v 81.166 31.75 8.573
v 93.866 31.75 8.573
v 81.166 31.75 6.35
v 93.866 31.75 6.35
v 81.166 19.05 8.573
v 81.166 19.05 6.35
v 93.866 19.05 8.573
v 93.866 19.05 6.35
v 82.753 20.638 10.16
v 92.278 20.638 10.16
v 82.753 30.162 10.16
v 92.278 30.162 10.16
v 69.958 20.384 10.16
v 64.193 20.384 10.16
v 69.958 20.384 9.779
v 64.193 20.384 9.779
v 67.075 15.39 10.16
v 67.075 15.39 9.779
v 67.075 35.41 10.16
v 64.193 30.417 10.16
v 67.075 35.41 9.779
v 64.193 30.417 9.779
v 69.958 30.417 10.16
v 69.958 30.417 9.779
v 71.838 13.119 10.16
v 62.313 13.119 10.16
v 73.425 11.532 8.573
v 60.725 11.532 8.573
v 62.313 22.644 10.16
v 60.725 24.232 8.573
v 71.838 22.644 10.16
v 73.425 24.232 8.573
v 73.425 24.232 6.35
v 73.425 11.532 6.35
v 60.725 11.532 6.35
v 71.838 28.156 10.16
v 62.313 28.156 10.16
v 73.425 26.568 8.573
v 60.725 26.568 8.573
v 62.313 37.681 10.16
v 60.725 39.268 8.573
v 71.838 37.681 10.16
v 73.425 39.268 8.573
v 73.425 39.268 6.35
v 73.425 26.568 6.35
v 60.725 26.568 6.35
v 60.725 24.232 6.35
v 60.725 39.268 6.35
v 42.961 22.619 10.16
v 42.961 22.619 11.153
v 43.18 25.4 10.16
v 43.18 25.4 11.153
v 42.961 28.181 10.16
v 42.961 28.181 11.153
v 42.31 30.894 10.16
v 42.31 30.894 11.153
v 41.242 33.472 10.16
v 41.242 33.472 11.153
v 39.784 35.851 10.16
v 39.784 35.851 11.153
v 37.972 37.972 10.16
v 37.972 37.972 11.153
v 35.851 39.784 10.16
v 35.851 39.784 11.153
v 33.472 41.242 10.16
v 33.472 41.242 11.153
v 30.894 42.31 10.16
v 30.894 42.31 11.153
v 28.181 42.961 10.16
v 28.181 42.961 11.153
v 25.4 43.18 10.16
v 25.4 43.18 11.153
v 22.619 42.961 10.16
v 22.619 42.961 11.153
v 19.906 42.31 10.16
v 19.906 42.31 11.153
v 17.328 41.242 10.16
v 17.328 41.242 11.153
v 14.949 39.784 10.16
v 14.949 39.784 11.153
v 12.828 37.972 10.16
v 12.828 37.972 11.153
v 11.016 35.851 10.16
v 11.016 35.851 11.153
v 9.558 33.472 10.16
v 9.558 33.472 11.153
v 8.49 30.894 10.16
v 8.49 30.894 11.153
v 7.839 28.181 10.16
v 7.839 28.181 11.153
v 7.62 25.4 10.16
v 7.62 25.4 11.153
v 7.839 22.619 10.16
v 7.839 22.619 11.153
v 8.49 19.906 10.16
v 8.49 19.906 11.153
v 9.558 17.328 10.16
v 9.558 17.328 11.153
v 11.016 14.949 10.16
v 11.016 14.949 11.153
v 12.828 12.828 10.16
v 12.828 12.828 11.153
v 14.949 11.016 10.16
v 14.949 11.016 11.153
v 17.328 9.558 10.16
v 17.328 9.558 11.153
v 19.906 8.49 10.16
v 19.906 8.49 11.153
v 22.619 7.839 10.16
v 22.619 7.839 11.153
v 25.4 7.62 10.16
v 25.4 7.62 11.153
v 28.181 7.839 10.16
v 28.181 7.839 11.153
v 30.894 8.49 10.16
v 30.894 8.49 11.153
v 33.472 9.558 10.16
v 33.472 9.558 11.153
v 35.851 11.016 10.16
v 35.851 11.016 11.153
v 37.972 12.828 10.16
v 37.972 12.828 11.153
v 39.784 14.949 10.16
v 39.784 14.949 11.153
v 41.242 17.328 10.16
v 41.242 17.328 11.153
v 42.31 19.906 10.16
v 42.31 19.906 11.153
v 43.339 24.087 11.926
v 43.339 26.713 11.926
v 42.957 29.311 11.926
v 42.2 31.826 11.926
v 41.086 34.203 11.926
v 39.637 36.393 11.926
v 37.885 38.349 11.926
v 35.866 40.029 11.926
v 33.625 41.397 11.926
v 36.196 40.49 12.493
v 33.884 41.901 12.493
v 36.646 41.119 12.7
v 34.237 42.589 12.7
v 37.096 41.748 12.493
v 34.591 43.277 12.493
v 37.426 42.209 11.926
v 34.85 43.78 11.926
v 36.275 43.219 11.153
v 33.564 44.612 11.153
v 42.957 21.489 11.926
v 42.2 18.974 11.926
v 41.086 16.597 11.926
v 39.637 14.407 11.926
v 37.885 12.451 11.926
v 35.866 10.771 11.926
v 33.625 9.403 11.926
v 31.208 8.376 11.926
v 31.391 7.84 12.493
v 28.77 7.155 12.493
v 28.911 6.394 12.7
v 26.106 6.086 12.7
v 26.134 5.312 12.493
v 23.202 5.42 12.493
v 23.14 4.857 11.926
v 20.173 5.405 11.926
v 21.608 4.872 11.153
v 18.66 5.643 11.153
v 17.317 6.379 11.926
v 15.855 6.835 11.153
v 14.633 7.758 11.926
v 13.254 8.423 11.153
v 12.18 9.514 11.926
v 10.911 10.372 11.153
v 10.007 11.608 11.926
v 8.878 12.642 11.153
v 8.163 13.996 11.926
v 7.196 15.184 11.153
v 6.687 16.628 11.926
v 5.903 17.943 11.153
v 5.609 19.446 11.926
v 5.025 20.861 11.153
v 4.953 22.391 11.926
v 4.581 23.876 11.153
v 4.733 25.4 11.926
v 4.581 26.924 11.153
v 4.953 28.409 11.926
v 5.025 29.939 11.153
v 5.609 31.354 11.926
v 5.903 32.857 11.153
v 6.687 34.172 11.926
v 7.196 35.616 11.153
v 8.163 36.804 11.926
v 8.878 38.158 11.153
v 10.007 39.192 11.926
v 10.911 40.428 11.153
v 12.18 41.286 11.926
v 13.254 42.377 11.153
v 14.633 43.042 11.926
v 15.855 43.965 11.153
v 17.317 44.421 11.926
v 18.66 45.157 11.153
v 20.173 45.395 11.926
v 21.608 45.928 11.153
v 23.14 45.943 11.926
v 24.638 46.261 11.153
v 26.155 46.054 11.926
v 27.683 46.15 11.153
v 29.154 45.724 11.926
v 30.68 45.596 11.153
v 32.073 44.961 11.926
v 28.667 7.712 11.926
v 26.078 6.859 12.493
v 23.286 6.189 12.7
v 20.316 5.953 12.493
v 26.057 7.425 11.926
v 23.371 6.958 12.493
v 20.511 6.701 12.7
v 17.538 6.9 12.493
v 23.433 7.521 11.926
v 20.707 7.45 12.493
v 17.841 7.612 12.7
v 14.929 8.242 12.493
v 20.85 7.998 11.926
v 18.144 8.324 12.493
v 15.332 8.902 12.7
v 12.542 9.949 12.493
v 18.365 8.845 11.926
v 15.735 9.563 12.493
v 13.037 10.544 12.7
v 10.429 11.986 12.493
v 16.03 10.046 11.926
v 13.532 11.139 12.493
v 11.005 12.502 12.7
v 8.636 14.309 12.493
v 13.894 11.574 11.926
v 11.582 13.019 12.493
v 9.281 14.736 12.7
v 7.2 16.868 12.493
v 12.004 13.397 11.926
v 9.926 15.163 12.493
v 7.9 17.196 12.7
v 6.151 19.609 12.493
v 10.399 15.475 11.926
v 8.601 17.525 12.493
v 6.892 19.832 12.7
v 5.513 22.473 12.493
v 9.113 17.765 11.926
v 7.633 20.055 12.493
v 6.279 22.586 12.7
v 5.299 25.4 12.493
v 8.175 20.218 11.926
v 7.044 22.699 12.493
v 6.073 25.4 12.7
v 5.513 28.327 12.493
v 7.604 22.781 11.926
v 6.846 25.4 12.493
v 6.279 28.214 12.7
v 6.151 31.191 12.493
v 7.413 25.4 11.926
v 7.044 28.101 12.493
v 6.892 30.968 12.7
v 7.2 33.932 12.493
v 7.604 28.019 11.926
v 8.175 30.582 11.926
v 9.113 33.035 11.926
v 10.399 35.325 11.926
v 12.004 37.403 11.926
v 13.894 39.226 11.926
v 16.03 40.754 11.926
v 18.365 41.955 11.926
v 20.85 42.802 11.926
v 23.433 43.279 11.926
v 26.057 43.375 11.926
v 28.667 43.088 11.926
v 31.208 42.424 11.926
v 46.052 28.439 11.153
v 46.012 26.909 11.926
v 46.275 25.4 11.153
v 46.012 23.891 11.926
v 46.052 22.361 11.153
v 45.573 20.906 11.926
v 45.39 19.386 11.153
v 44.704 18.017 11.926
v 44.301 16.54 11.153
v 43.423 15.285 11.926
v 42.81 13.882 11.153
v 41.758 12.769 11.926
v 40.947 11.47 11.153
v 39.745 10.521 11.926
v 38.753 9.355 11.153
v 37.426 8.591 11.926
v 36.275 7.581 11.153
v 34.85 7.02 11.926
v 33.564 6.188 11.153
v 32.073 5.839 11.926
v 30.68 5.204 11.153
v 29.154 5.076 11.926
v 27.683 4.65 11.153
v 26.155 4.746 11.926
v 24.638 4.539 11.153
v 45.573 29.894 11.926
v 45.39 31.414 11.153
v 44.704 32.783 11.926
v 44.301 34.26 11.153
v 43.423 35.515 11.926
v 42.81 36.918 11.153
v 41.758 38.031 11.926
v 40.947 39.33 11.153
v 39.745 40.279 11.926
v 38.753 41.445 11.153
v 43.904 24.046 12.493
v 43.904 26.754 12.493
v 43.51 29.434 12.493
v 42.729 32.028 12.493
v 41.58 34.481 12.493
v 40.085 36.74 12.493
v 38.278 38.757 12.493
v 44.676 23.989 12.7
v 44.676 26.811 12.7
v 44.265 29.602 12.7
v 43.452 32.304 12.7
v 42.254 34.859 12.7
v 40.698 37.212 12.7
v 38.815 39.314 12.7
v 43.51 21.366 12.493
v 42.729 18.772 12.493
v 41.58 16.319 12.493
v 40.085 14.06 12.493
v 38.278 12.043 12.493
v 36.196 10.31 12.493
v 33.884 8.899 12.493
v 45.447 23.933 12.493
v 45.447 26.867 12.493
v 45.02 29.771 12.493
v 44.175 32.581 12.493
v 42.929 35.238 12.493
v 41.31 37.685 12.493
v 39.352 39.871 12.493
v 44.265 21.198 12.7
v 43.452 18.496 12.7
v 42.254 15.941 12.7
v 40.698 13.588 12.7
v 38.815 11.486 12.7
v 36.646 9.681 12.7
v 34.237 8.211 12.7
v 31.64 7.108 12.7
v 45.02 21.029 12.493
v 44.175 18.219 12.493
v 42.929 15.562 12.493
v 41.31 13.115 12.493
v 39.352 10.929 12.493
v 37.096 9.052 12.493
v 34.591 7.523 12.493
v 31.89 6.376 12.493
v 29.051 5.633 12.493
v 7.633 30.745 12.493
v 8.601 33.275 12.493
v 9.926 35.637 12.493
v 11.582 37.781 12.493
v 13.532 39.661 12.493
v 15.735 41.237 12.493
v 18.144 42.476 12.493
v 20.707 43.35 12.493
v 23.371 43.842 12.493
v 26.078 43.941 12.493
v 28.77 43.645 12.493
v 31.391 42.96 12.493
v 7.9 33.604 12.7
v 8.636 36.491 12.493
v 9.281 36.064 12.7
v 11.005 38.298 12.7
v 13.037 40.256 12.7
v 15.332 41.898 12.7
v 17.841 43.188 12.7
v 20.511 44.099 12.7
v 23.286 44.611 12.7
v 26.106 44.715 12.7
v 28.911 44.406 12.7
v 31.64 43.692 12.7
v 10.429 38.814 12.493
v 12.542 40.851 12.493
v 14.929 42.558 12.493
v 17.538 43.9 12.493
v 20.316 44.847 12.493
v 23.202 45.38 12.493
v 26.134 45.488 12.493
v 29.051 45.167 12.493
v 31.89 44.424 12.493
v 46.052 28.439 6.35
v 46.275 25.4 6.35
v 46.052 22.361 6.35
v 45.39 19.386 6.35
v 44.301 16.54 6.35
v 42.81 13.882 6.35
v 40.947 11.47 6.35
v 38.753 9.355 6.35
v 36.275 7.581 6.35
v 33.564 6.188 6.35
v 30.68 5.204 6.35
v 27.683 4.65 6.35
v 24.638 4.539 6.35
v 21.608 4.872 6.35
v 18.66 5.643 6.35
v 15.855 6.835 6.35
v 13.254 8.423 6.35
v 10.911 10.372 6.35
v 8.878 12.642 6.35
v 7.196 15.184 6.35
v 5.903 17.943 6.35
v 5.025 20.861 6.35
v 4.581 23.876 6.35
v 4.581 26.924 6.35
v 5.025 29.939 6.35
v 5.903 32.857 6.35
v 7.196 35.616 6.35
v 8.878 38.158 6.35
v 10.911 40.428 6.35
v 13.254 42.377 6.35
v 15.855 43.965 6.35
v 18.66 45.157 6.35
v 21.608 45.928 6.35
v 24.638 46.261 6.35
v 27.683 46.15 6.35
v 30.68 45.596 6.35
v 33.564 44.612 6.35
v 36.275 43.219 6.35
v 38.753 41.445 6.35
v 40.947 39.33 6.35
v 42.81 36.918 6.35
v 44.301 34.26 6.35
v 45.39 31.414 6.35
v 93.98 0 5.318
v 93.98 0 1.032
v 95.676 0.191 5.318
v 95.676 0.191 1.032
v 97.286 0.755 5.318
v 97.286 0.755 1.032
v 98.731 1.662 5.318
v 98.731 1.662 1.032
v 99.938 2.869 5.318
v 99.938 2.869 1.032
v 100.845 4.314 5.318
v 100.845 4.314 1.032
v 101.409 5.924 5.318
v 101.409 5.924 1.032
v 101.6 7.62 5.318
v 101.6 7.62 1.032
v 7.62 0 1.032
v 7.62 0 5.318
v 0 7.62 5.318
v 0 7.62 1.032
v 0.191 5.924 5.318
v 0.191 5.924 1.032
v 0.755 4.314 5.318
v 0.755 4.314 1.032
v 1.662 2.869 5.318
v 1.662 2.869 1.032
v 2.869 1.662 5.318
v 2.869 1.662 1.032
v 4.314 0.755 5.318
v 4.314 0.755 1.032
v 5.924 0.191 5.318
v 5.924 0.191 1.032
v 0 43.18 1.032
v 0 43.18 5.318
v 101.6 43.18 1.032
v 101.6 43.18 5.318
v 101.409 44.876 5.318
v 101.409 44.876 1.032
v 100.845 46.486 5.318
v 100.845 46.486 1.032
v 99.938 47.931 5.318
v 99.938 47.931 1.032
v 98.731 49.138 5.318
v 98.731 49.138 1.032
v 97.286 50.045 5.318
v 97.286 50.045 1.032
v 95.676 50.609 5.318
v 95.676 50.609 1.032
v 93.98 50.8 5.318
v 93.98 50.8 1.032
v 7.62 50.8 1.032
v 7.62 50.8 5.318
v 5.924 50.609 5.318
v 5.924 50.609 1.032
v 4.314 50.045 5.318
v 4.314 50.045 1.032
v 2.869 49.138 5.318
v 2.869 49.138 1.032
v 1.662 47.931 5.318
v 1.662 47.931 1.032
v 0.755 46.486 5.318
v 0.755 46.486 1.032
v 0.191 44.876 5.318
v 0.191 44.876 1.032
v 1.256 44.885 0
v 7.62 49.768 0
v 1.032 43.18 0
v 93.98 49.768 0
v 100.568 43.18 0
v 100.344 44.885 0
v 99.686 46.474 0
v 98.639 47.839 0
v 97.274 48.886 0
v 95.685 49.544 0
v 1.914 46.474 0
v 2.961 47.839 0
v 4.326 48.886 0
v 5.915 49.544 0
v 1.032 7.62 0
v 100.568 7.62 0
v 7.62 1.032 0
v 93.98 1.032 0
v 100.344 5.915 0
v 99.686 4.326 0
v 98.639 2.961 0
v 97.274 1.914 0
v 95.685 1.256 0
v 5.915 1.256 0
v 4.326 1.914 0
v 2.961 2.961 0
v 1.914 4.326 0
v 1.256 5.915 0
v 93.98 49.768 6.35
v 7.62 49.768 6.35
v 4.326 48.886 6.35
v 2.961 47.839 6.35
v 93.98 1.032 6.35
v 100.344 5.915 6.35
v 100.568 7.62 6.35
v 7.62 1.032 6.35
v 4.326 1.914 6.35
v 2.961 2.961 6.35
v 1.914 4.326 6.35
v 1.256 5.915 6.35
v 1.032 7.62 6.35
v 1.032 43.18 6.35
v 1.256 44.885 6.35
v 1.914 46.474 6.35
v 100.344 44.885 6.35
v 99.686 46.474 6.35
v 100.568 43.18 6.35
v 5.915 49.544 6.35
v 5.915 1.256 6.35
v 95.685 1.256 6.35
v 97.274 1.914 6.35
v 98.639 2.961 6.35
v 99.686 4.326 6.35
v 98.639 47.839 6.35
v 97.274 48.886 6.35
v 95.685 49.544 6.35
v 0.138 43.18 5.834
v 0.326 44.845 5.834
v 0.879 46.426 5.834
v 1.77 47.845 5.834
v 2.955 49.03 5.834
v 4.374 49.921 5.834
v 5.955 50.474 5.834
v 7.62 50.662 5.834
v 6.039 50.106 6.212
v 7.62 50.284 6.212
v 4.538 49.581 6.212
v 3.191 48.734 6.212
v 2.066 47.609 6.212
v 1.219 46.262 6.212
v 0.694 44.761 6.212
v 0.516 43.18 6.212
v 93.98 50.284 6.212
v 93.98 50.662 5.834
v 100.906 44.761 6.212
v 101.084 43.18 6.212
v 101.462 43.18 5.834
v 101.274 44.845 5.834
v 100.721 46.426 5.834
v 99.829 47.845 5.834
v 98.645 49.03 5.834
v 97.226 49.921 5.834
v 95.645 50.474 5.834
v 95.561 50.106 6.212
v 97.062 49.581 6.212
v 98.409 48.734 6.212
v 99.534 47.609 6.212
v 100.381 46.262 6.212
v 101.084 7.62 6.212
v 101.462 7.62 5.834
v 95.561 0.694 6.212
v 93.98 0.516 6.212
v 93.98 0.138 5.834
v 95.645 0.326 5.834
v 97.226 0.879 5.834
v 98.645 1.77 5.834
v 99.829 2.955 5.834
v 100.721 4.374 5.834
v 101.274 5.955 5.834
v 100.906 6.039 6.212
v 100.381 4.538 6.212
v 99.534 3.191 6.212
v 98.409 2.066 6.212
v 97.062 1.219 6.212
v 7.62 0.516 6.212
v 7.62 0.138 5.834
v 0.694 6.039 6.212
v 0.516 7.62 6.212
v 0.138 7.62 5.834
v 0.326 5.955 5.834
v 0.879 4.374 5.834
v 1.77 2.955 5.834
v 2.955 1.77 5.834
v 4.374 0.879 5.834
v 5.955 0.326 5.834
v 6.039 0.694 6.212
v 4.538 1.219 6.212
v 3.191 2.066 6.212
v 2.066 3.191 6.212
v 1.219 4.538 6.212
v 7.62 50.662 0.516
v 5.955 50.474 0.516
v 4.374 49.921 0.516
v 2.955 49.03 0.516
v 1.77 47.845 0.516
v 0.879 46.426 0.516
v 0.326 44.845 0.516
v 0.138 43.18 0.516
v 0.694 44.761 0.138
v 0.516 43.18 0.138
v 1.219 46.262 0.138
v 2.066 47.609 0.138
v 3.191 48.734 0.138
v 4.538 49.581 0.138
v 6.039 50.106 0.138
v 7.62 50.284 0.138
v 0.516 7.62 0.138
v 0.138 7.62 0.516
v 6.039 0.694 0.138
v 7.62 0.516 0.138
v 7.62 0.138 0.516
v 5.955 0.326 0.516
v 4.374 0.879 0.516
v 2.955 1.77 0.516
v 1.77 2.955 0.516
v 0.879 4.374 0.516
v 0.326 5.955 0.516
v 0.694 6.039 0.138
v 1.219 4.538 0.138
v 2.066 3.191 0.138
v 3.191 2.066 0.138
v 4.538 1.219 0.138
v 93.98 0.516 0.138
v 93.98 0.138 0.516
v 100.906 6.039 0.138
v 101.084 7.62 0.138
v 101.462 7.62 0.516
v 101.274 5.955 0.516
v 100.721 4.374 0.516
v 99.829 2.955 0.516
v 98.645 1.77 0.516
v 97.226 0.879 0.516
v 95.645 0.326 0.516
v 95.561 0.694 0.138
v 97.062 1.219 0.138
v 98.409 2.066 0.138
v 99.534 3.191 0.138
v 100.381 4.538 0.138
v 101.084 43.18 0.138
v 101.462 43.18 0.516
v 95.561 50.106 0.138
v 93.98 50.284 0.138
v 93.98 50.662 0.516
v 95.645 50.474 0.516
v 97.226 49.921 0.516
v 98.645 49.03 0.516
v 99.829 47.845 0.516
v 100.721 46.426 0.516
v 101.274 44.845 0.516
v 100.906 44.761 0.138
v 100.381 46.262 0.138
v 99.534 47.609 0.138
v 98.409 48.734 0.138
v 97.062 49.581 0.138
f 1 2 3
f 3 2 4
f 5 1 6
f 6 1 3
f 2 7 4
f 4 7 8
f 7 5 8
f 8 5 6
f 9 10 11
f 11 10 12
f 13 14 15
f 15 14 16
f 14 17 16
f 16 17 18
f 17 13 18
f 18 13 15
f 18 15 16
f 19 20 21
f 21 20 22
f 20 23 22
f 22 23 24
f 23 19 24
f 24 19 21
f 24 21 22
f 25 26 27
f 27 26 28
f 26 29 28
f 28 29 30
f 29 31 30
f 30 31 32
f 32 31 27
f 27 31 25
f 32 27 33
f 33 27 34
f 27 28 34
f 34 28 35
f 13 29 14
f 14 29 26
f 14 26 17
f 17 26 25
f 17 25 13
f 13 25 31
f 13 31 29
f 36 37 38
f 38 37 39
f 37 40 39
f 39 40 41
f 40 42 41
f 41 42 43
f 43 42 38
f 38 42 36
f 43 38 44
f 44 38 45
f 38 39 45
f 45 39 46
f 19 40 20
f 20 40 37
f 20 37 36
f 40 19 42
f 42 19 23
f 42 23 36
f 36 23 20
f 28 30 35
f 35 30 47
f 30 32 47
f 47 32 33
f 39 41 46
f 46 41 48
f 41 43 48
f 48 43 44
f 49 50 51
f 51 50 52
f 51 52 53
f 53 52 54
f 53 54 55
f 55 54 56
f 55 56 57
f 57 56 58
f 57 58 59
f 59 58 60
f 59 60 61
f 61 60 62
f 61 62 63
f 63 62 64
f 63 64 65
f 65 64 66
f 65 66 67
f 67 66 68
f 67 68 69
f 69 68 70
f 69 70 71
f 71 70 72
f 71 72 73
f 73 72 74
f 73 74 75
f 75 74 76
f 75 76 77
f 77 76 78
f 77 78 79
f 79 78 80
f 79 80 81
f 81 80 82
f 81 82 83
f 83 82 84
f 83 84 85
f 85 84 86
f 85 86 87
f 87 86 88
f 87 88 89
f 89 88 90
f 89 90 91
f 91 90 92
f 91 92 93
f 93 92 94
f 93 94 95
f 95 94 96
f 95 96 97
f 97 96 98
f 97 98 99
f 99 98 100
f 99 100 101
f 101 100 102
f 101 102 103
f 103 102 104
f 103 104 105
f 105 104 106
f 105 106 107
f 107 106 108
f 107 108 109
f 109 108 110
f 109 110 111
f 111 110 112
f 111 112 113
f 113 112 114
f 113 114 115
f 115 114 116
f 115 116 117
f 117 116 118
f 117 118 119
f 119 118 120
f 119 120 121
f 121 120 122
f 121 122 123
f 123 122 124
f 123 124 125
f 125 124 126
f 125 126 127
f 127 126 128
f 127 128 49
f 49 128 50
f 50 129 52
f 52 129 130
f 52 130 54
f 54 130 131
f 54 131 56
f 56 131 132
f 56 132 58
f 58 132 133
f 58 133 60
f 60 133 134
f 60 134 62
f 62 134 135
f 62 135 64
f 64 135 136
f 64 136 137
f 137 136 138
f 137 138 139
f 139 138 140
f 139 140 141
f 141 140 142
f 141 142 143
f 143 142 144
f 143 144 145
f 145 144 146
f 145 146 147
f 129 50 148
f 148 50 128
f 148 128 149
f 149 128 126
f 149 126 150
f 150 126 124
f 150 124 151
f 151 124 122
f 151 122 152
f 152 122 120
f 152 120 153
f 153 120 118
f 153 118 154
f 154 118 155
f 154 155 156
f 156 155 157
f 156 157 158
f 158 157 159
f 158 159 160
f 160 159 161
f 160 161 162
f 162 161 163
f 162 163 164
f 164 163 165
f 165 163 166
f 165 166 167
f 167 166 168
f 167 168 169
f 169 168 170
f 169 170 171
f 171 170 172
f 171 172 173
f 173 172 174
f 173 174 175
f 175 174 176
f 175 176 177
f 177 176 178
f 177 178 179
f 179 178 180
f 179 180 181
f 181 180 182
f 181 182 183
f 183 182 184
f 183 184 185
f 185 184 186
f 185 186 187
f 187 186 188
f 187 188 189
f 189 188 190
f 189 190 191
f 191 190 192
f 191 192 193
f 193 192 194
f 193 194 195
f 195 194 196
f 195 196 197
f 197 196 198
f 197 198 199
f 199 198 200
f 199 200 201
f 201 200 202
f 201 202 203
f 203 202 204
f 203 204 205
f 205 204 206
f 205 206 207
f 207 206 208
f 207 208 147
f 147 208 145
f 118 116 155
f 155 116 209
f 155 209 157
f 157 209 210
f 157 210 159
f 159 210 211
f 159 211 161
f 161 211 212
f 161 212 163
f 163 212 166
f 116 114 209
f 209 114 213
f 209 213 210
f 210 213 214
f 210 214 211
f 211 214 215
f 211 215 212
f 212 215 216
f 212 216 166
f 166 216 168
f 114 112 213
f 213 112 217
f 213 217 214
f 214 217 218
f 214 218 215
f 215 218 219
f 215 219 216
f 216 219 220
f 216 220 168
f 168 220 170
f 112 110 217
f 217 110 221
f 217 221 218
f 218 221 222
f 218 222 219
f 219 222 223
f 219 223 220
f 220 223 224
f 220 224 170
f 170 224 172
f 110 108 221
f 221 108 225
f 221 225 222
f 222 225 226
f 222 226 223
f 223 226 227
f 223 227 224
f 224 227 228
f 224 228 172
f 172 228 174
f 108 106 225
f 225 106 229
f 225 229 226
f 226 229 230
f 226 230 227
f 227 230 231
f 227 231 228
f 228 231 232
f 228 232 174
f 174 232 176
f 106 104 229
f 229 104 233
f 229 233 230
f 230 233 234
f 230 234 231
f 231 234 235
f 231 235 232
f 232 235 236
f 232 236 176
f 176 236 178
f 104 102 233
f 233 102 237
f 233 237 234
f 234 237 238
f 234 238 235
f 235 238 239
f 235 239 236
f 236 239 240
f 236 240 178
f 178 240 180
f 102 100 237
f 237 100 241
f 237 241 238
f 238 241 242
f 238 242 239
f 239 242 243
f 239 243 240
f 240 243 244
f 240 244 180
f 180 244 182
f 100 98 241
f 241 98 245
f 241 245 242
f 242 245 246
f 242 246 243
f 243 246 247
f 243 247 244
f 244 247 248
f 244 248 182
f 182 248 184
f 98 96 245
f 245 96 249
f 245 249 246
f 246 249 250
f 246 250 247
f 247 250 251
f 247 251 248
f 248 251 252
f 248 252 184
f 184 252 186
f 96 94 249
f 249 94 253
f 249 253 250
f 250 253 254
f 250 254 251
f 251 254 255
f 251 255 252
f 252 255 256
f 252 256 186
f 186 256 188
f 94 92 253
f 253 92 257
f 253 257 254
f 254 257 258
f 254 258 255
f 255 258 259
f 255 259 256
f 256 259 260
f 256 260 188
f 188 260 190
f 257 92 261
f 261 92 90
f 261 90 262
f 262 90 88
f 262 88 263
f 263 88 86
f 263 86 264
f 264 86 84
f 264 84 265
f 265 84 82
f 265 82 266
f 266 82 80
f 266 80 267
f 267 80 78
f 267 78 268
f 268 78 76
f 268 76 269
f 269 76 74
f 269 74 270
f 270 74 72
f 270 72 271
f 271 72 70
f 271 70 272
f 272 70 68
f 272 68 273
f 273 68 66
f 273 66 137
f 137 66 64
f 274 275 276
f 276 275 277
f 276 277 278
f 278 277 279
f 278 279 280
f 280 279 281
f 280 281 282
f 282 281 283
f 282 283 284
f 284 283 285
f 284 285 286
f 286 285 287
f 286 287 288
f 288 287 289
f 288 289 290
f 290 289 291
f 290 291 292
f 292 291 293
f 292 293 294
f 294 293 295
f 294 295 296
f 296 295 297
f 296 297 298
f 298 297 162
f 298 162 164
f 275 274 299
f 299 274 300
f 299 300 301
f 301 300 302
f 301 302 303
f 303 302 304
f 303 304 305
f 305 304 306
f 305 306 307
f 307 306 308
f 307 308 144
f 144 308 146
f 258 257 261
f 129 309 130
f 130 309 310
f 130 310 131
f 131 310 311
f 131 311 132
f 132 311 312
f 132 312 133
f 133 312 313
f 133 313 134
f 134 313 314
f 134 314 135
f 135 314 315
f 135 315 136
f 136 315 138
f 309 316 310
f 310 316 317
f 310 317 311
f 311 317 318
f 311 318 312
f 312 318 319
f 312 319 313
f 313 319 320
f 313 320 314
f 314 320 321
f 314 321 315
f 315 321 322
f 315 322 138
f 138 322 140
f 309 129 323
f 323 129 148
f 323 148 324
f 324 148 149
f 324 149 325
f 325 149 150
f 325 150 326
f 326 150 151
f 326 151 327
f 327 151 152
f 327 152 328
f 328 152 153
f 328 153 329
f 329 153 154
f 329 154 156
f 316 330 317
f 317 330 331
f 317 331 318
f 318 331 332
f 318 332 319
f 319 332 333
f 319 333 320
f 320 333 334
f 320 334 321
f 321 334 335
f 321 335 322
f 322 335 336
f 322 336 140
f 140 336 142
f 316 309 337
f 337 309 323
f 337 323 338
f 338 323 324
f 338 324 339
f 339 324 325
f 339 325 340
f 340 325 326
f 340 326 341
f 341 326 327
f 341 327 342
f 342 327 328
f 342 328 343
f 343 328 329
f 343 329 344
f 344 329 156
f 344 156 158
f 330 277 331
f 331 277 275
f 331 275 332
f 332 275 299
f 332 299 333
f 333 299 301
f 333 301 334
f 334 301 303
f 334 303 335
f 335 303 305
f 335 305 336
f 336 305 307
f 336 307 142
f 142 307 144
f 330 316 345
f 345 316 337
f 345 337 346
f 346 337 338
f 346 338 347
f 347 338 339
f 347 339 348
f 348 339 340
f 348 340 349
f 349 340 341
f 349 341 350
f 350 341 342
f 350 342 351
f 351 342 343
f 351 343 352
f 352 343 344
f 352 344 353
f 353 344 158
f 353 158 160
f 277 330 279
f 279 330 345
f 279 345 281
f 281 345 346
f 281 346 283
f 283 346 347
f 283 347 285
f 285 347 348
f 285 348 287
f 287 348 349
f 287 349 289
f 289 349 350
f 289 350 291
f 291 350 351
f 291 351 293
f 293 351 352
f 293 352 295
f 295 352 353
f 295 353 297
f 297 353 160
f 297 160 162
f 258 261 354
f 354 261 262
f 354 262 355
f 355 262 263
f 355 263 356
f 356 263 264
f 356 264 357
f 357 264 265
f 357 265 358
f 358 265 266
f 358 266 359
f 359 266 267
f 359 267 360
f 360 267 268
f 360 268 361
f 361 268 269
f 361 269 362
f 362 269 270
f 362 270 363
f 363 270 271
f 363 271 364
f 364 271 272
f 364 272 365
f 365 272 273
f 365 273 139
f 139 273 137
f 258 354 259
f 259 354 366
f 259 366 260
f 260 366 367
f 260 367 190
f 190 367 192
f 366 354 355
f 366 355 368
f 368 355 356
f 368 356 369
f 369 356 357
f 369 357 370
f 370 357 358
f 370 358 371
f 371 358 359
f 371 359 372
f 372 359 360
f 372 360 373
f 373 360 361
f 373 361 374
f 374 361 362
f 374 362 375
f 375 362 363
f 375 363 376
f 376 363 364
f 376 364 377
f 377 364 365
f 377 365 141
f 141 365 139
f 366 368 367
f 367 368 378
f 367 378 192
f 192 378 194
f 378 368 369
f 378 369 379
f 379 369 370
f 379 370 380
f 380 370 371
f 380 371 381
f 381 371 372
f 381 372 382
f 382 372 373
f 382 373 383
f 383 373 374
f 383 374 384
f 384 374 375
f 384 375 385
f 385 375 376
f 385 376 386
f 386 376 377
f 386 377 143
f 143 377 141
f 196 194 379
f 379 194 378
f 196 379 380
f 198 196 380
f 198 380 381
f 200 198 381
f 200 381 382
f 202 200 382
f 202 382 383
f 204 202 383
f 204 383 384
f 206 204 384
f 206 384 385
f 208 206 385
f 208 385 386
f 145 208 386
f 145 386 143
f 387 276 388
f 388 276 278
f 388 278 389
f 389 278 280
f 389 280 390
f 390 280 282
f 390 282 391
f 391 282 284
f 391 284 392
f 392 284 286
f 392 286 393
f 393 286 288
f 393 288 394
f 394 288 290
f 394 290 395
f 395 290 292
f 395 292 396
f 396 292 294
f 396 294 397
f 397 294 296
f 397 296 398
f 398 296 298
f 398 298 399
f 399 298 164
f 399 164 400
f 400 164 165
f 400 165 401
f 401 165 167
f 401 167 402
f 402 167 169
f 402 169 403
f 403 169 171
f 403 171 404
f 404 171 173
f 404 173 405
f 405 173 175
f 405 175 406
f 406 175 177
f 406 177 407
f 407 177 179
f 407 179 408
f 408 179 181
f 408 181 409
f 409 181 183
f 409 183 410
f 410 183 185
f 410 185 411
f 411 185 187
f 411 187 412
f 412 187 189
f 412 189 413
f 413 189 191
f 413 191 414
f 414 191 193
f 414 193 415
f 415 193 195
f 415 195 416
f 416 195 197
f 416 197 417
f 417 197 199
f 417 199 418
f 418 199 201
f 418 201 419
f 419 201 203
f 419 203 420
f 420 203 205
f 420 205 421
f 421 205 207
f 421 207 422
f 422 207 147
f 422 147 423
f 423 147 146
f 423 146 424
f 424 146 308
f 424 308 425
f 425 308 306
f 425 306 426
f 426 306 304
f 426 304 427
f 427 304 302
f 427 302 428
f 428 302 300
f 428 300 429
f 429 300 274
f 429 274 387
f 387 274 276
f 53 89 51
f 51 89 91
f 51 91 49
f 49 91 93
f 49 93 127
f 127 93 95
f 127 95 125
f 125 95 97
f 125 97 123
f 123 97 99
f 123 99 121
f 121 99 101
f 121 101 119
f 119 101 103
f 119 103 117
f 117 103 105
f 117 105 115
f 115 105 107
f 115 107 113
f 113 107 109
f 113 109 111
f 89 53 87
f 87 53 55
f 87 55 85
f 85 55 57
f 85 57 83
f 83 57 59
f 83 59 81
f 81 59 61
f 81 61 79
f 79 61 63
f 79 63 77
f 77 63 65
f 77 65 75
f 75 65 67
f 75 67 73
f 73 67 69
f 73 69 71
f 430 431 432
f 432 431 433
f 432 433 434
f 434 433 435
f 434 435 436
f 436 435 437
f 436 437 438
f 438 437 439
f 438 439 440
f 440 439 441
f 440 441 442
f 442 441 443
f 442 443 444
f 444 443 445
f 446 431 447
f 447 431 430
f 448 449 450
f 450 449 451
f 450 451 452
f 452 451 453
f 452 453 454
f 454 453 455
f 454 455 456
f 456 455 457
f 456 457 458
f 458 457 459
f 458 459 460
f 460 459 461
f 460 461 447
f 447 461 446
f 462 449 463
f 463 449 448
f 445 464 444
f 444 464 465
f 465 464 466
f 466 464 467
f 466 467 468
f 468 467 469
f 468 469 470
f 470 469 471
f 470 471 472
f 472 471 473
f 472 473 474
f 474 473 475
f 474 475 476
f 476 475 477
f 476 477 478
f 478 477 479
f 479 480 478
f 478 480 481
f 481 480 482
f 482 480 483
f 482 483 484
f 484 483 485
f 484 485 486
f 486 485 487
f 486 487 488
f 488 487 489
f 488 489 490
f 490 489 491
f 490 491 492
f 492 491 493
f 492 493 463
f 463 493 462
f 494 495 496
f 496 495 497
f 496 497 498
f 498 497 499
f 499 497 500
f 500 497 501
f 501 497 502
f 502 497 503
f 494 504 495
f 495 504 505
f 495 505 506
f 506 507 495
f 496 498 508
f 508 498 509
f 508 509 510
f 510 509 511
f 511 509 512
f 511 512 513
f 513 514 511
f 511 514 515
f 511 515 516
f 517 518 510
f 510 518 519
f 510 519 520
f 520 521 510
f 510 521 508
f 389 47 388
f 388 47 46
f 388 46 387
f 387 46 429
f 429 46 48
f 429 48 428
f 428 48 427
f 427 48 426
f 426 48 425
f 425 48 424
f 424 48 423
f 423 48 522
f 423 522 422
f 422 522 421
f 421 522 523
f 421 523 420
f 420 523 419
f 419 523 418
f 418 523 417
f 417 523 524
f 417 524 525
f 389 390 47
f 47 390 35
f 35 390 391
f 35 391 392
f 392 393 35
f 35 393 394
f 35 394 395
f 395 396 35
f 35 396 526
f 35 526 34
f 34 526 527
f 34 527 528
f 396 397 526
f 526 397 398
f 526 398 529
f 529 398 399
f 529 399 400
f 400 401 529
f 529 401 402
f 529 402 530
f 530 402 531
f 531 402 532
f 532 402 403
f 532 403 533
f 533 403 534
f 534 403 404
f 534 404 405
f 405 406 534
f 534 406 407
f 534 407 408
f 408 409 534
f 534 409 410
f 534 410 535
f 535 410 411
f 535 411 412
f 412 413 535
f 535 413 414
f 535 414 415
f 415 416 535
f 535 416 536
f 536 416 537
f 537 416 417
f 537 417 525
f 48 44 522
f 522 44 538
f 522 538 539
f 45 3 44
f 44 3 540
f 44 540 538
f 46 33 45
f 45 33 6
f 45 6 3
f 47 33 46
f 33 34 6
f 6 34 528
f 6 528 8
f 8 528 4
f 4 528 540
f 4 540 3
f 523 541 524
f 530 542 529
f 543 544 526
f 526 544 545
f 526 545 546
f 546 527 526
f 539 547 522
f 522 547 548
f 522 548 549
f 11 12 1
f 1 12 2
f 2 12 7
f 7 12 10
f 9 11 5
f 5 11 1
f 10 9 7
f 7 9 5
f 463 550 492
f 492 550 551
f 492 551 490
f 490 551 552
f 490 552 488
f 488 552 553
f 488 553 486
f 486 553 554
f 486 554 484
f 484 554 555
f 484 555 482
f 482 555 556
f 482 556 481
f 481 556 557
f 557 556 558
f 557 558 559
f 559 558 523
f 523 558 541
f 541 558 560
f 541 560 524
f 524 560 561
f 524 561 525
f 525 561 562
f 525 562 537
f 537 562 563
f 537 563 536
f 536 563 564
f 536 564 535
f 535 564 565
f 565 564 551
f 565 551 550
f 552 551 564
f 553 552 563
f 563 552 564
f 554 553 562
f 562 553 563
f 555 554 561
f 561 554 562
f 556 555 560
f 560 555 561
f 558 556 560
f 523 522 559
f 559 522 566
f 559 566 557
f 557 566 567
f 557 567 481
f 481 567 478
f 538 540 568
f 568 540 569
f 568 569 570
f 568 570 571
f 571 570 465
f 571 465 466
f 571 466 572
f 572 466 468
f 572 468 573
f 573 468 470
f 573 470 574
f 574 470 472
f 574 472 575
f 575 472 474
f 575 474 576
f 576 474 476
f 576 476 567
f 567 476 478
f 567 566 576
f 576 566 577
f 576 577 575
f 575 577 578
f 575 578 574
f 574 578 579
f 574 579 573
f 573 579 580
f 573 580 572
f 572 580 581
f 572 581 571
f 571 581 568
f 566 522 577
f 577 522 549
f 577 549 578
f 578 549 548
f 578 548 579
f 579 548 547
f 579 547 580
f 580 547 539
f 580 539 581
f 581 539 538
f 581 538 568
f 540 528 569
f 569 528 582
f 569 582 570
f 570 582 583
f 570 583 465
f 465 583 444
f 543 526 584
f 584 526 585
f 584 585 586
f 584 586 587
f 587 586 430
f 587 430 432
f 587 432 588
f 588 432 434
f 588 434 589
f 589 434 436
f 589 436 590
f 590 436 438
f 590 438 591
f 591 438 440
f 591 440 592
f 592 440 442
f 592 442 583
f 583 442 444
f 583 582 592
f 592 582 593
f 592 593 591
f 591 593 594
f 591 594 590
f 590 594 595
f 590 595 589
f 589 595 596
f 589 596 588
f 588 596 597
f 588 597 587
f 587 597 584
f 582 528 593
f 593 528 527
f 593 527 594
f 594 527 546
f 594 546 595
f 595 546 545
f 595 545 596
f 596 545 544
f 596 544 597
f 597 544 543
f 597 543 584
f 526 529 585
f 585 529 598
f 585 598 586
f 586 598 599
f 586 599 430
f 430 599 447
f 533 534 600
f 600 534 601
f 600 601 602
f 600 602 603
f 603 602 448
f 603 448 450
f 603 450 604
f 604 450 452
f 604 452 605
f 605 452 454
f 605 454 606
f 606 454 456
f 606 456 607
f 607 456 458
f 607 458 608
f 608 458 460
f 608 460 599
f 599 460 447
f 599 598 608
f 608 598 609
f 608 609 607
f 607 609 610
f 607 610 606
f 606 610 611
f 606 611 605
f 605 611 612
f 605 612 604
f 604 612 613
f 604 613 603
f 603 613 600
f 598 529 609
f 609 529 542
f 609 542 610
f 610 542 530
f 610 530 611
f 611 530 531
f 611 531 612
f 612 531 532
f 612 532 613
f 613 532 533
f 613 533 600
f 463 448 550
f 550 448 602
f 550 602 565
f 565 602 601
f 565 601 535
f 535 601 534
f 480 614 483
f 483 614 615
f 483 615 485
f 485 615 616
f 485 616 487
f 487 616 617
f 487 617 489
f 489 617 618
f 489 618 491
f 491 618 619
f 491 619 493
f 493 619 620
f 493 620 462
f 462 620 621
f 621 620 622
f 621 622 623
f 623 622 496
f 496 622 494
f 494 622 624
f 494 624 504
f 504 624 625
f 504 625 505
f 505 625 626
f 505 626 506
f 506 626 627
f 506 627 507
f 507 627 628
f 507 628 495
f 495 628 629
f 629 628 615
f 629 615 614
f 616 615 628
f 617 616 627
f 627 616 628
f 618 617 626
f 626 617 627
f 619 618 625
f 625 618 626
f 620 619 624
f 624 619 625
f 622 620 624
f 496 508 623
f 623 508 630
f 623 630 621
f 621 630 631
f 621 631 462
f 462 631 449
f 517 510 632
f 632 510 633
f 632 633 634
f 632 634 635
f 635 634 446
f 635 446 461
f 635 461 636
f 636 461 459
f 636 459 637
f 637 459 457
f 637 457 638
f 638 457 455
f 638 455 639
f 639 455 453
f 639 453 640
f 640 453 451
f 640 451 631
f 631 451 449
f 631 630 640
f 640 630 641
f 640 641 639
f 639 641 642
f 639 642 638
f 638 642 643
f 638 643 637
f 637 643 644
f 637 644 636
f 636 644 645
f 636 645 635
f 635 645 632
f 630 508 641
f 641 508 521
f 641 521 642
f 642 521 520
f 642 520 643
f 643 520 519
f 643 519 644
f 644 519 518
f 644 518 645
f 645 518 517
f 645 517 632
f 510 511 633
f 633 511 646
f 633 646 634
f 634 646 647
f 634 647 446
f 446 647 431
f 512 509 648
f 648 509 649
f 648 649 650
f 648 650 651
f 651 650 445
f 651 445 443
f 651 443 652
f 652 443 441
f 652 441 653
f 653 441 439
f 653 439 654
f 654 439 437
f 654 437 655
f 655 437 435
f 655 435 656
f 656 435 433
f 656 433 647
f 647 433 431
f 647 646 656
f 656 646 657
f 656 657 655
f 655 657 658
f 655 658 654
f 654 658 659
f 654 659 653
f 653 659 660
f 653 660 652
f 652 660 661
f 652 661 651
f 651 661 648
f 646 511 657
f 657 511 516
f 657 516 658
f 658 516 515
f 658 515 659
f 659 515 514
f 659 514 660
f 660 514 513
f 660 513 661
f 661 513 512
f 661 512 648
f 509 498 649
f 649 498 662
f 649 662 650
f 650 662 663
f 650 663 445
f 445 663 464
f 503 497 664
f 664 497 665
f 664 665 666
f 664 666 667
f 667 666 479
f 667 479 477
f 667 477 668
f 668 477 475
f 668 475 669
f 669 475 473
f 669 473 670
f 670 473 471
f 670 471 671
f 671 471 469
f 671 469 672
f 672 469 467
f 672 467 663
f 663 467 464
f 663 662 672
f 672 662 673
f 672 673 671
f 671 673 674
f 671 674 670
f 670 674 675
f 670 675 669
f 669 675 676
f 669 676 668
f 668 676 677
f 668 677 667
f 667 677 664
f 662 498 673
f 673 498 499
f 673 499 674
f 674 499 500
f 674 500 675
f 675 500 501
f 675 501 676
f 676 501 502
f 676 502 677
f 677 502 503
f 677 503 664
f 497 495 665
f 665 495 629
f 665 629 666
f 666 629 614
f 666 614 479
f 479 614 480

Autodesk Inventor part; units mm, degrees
ref_plane "YZ Plane" through (0, 0, 0) normal (1, 0, 0) x (0, 1, 0)
ref_plane "XZ Plane" through (0, 0, 0) normal (0, 1, 0) x (-1, 0, 0)
ref_plane "XY Plane" through (0, 0, 0) normal (0, 0, 1) x (1, 0, 0)
sketch "Sketch1" plane through (0, 0, 0) normal (0, 0, 1) x (1, 0, 0)
  line L0 (0, 0) -> (101.6, 0)
  line L1 (101.6, 0) -> (101.6, 50.8)
  line L2 (101.6, 50.8) -> (0, 50.8)
  line L3 (0, 50.8) -> (0, 0)
  dimension "d0" = 101.6
  dimension "d1" = 50.8
extrude "Extrusion1" add sketch "Sketch1" along normal blind 6.35
fillet "Fillet1" radius 7.62 4 edges at (101.6, 50.8, 3.175) (101.6, 0, 3.175) (0, 50.8, 3.175) (0, 0, 3.175)
sketch "Sketch2" plane through (0, 0, 6.35) normal (0, 0, 1) x (1, 0, 0)
  circle A0 centre (25.4, 25.4) radius 20.8748
  line L0 (101.6, 7.62) -> (101.6, 43.18) projected
  circle A1 centre (25.4, 25.4) radius 17.78
  point P0 (0, 0)
  dimension "d5" = 76.2
  dimension "d13" = 3.0948
extrude "Extrusion2" add sketch "Sketch2" along normal blind 6.35 contours A0 | A1
extrude "Extrusion3" cut sketch "Sketch2" along normal blind 6.35 contours A1
extrude "Extrusion4" add sketch "Sketch2" along normal blind 3.81 contours A1
fillet "Fillet3" radius 1.5474 2 edges at (4.5252, 25.4, 12.7) (7.62, 25.4, 12.7)
sketch "Sketch3" plane through (0, 0, 6.35) normal (0, 0, 1) x (1, 0, 0)
  line L0 (60.7255, 39.2684) -> (73.4255, 39.2684)
  line L1 (73.4255, 39.2684) -> (73.4255, 26.5684)
  line L2 (73.4255, 26.5684) -> (60.7255, 26.5684)
  line L3 (60.7255, 26.5684) -> (60.7255, 39.2684)
  line L4 (60.7255, 11.5316) -> (73.4255, 11.5316)
  line L5 (73.4255, 11.5316) -> (73.4255, 24.2316)
  line L6 (73.4255, 24.2316) -> (60.7255, 24.2316)
  line L7 (60.7255, 24.2316) -> (60.7255, 11.5316)
  line L8 (93.98, 50.8) -> (7.62, 50.8) projected
  line L9 (7.62, 0) -> (93.98, 0) projected
  point P0 (0, 0)
  dimension "d15" = 12.7
  dimension "d16" = 12.7
  dimension "d17" = 12.7
  dimension "d18" = 12.7
  dimension "d19" = 11.5316
  dimension "d20" = 11.5316
extrude "Extrusion5" add sketch "Sketch3" along normal blind 3.81
chamfer "Chamfer1" distance 1.5875 angle 45 4 edges at (67.0755, 39.2684, 10.16) (73.4255, 32.9184, 10.16) (67.0755, 26.5684, 10.16) (60.7255, 32.9184, 10.16)
chamfer "Chamfer2" distance 1.5875 angle 45 4 edges at (67.0755, 24.2316, 10.16) (60.7255, 17.8816, 10.16) (67.0755, 11.5316, 10.16) (73.4255, 17.8816, 10.16)
sketch "Sketch4" plane through (0, 0, 10.16) normal (0, 0, 1) x (1, 0, 0)
  line L0 (64.1926, 30.4165) -> (67.0755, 35.4098)
  line L1 (64.1926, 30.4165) -> (69.9584, 30.4165) construction
  line L2 (67.0755, 35.4098) -> (69.9584, 30.4165)
  line L3 (69.9584, 30.4165) -> (64.1926, 30.4165)
  line L4 (62.313, 28.1559) -> (62.313, 37.6809) projected
  line L5 (71.838, 37.6809) -> (71.838, 28.1559) projected
  line L6 (71.838, 28.1559) -> (62.313, 28.1559) projected
  line L7 (64.1926, 20.3835) -> (69.9584, 20.3835)
  line L8 (69.9584, 20.3835) -> (67.0755, 15.3902)
  line L9 (67.0755, 15.3902) -> (64.1926, 20.3835)
  line L10 (62.313, 22.6441) -> (71.838, 22.6441) projected
  line L11 (62.313, 13.1191) -> (62.313, 22.6441) projected
  point P0 (0, 0)
  dimension "d29" = 60
  dimension "d30" = 60
  dimension "d31" = 1.8796
  dimension "d33" = 5.7658
  dimension "d35" = 2.2606
  dimension "d36" = 4.9933
  dimension "d37" = 5.7658
  dimension "d38" = 5.7658
  dimension "d39" = 60
  dimension "d40" = 2.2606
  dimension "d41" = 1.8796
extrude "Extrusion6" cut sketch "Sketch4" against normal blind 0.381
sketch "Sketch5" plane through (0, 0, 6.35) normal (0, 0, 1) x (1, 0, 0)
  line L0 (81.1657, 31.75) -> (93.8657, 31.75)
  line L1 (93.8657, 31.75) -> (93.8657, 19.05)
  line L2 (93.8657, 19.05) -> (81.1657, 19.05)
  line L3 (81.1657, 19.05) -> (81.1657, 31.75)
  line L4 (93.98, 50.8) -> (7.62, 50.8) projected
  line L5 (101.6, 7.62) -> (101.6, 43.18) projected
  point P0 (0, 0)
  dimension "d44" = 12.7
  dimension "d45" = 12.7
  dimension "d46" = 19.05
  dimension "d47" = 7.7343
extrude "Extrusion7" add sketch "Sketch5" along normal blind 3.81
chamfer "Chamfer3" distance 1.5875 angle 45 4 edges at (87.5157, 31.75, 10.16) (93.8657, 25.4, 10.16) (87.5157, 19.05, 10.16) (81.1657, 25.4, 10.16)
fillet "Fillet4" radius 1.0316 8 edges at (2.2318, 48.5682, 6.35) (0, 25.4, 6.35) (2.2318, 2.2318, 6.35) (50.8, 0, 6.35) (99.3682, 2.2318, 6.35) (101.6, 25.4, 6.35) (99.3682, 48.5682, 6.35) (50.8, 50.8, 6.35)
fillet "Fillet5" radius 1.0316 8 edges at (2.2318, 48.5682, 0) (0, 25.4, 0) (2.2318, 2.2318, 0) (50.8, 0, 0) (99.3682, 2.2318, 0) (101.6, 25.4, 0) (99.3682, 48.5682, 0) (50.8, 50.8, 0)
properties part number "Control Panel"
